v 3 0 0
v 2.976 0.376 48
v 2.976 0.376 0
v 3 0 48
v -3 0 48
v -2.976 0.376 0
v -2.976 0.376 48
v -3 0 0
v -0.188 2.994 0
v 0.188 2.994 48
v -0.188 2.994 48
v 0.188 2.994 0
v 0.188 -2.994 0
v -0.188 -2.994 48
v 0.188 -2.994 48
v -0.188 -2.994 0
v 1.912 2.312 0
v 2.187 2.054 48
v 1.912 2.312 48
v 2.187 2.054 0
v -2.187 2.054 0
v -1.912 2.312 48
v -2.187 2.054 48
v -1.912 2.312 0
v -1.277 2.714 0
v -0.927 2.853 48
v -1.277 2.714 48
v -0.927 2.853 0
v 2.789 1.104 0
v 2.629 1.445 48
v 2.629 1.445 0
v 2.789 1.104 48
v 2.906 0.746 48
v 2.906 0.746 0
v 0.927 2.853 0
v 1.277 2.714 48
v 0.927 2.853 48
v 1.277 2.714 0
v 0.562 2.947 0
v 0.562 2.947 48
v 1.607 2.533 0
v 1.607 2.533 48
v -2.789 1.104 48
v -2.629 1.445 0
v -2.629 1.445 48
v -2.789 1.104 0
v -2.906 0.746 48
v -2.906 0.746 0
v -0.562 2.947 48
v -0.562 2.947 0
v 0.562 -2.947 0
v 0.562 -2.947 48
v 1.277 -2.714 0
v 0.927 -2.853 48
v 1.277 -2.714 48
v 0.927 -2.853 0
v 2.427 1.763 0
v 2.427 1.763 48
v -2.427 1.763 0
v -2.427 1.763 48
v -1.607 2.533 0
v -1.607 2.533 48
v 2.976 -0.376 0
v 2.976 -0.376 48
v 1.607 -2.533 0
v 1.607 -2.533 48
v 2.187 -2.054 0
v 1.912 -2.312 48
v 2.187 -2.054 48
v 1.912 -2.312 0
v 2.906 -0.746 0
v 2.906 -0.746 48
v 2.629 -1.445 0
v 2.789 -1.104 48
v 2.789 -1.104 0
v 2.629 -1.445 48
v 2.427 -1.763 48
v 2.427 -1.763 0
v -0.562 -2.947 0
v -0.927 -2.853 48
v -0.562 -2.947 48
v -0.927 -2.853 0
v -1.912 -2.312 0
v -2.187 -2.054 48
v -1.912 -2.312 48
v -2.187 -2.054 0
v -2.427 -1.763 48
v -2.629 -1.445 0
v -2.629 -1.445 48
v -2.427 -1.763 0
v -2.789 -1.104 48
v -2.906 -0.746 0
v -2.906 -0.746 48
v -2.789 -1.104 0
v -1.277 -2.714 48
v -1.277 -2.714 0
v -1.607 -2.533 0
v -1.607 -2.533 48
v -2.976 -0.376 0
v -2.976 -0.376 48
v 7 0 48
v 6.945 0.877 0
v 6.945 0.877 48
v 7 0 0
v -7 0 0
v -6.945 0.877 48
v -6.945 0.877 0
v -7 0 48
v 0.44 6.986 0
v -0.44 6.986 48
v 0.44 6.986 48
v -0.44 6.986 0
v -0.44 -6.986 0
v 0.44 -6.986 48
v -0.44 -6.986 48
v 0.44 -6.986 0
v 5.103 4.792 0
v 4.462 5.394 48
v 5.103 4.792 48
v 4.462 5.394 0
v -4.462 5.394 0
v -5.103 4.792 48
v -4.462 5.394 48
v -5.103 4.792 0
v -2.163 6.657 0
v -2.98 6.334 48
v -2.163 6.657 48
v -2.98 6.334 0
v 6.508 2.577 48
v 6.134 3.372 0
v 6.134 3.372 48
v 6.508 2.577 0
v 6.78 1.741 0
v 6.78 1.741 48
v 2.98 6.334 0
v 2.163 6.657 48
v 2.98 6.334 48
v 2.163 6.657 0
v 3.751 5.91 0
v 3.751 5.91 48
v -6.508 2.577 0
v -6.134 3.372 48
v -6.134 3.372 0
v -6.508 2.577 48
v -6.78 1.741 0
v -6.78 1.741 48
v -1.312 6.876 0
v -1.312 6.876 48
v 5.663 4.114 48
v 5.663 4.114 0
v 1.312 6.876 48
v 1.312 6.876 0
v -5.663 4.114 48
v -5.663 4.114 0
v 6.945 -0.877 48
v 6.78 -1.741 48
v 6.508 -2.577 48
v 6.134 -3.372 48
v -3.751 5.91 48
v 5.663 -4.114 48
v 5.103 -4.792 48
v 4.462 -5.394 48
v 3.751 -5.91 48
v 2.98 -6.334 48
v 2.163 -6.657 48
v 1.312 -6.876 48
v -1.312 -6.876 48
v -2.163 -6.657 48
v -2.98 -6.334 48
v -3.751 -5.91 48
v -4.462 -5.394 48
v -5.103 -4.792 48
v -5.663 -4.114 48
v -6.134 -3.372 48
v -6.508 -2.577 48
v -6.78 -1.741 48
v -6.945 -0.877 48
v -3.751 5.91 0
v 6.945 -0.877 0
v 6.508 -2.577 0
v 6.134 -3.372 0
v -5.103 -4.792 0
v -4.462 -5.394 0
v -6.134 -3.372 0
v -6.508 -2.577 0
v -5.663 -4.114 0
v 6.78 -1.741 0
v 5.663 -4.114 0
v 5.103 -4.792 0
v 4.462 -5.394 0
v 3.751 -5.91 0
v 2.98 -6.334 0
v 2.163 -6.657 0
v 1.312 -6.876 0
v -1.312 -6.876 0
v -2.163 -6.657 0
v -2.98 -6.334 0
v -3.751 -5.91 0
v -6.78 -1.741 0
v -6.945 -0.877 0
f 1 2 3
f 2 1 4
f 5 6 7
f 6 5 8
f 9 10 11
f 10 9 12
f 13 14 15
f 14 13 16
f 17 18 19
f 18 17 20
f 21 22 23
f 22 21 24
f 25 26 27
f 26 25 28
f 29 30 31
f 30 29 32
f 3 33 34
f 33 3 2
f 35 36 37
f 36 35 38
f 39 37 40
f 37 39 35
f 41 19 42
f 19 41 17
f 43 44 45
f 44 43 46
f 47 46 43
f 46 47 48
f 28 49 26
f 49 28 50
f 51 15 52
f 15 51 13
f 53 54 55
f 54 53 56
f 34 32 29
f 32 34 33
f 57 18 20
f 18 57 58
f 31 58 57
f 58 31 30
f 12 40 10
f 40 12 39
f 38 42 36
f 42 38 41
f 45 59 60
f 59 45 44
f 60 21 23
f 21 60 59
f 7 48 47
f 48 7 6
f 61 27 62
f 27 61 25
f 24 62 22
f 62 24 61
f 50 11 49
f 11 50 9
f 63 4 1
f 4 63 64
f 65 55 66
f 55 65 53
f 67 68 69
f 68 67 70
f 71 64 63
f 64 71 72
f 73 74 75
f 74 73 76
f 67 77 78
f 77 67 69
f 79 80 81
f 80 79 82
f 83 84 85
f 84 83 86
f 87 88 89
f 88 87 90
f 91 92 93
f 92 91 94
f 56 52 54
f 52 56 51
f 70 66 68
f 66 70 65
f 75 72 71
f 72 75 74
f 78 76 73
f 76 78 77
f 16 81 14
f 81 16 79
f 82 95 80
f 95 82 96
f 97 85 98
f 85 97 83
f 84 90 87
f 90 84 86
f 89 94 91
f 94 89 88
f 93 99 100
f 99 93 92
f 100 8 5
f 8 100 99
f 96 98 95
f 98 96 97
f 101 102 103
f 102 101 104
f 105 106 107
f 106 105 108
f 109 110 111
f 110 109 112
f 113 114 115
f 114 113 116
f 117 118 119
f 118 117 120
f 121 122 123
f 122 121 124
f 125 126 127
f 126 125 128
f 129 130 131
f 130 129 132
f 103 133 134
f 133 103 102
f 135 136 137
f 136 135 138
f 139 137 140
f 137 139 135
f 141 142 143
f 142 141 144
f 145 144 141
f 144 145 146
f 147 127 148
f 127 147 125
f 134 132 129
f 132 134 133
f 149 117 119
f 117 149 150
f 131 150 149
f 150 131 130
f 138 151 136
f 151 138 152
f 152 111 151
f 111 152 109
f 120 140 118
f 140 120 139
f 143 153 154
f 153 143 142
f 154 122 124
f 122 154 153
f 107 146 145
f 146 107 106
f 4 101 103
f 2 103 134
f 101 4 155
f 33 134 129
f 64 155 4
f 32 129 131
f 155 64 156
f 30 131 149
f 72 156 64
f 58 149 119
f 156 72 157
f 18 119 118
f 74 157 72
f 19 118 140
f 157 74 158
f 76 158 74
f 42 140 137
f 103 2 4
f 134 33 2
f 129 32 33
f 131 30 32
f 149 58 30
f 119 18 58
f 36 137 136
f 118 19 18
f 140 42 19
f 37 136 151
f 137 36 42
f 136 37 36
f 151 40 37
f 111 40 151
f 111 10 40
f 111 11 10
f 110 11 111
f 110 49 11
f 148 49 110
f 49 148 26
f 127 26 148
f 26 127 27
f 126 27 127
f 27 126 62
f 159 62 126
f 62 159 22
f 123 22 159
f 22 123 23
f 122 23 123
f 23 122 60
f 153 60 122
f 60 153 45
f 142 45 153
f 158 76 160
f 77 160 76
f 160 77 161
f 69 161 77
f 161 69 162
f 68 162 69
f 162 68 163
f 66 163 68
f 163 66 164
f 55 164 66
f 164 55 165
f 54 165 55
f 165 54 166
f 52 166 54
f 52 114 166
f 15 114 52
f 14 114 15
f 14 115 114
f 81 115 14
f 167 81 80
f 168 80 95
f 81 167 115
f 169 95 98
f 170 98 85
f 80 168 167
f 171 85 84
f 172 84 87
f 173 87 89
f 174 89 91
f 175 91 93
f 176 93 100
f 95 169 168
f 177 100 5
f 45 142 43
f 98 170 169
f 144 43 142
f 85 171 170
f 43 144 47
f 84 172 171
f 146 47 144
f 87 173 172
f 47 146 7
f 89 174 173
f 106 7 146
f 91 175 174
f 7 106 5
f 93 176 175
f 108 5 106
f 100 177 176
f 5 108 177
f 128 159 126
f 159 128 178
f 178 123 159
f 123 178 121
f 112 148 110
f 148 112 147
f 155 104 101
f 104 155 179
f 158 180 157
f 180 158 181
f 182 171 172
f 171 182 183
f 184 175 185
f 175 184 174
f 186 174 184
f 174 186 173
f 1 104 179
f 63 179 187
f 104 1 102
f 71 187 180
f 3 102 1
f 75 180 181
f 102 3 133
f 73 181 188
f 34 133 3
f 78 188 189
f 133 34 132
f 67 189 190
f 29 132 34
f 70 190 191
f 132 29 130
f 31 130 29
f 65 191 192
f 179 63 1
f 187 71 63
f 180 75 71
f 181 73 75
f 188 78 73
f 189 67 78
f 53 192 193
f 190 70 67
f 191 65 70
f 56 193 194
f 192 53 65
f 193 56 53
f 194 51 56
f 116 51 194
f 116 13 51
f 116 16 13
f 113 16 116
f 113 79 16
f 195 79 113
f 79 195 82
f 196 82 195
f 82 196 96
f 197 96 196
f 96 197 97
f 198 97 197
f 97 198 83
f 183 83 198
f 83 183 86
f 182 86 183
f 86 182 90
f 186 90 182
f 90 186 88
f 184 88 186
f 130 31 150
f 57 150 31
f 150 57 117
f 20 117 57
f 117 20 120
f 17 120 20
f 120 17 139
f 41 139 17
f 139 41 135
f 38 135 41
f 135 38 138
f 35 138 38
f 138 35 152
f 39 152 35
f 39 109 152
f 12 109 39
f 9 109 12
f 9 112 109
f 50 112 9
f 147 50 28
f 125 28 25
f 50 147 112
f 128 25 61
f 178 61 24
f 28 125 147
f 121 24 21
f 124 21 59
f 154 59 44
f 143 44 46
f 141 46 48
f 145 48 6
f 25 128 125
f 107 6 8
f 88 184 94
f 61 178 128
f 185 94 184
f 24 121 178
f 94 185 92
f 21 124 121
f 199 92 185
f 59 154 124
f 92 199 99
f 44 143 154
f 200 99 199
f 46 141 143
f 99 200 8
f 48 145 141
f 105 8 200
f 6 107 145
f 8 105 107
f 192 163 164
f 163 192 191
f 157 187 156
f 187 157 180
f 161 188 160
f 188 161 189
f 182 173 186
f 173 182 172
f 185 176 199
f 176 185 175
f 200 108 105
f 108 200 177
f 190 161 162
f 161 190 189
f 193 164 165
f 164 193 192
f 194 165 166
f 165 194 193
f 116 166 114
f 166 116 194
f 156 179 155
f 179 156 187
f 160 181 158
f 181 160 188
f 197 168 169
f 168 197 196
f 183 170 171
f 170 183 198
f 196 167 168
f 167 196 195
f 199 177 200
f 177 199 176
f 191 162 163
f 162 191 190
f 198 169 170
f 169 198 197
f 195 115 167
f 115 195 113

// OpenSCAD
$fn = 50;


difference() {
	union() {
		cylinder(h = 48, r = 7.0000000000);
	}
	union() {
		translate(v = [0.0000000000, 0.0000000000, -100.0000000000]) {
			cylinder(h = 200, r = 3.0000000000);
		}
		translate(v = [0.0000000000, 0.0000000000, -100.0000000000]) {
			cylinder(h = 200, r = 3.0000000000);
		}
		translate(v = [0.0000000000, 0.0000000000, -100.0000000000]) {
			cylinder(h = 200, r = 3.0000000000);
		}
		translate(v = [0.0000000000, 0.0000000000, -100.0000000000]) {
			cylinder(h = 200, r = 3.0000000000);
		}
	}
}
